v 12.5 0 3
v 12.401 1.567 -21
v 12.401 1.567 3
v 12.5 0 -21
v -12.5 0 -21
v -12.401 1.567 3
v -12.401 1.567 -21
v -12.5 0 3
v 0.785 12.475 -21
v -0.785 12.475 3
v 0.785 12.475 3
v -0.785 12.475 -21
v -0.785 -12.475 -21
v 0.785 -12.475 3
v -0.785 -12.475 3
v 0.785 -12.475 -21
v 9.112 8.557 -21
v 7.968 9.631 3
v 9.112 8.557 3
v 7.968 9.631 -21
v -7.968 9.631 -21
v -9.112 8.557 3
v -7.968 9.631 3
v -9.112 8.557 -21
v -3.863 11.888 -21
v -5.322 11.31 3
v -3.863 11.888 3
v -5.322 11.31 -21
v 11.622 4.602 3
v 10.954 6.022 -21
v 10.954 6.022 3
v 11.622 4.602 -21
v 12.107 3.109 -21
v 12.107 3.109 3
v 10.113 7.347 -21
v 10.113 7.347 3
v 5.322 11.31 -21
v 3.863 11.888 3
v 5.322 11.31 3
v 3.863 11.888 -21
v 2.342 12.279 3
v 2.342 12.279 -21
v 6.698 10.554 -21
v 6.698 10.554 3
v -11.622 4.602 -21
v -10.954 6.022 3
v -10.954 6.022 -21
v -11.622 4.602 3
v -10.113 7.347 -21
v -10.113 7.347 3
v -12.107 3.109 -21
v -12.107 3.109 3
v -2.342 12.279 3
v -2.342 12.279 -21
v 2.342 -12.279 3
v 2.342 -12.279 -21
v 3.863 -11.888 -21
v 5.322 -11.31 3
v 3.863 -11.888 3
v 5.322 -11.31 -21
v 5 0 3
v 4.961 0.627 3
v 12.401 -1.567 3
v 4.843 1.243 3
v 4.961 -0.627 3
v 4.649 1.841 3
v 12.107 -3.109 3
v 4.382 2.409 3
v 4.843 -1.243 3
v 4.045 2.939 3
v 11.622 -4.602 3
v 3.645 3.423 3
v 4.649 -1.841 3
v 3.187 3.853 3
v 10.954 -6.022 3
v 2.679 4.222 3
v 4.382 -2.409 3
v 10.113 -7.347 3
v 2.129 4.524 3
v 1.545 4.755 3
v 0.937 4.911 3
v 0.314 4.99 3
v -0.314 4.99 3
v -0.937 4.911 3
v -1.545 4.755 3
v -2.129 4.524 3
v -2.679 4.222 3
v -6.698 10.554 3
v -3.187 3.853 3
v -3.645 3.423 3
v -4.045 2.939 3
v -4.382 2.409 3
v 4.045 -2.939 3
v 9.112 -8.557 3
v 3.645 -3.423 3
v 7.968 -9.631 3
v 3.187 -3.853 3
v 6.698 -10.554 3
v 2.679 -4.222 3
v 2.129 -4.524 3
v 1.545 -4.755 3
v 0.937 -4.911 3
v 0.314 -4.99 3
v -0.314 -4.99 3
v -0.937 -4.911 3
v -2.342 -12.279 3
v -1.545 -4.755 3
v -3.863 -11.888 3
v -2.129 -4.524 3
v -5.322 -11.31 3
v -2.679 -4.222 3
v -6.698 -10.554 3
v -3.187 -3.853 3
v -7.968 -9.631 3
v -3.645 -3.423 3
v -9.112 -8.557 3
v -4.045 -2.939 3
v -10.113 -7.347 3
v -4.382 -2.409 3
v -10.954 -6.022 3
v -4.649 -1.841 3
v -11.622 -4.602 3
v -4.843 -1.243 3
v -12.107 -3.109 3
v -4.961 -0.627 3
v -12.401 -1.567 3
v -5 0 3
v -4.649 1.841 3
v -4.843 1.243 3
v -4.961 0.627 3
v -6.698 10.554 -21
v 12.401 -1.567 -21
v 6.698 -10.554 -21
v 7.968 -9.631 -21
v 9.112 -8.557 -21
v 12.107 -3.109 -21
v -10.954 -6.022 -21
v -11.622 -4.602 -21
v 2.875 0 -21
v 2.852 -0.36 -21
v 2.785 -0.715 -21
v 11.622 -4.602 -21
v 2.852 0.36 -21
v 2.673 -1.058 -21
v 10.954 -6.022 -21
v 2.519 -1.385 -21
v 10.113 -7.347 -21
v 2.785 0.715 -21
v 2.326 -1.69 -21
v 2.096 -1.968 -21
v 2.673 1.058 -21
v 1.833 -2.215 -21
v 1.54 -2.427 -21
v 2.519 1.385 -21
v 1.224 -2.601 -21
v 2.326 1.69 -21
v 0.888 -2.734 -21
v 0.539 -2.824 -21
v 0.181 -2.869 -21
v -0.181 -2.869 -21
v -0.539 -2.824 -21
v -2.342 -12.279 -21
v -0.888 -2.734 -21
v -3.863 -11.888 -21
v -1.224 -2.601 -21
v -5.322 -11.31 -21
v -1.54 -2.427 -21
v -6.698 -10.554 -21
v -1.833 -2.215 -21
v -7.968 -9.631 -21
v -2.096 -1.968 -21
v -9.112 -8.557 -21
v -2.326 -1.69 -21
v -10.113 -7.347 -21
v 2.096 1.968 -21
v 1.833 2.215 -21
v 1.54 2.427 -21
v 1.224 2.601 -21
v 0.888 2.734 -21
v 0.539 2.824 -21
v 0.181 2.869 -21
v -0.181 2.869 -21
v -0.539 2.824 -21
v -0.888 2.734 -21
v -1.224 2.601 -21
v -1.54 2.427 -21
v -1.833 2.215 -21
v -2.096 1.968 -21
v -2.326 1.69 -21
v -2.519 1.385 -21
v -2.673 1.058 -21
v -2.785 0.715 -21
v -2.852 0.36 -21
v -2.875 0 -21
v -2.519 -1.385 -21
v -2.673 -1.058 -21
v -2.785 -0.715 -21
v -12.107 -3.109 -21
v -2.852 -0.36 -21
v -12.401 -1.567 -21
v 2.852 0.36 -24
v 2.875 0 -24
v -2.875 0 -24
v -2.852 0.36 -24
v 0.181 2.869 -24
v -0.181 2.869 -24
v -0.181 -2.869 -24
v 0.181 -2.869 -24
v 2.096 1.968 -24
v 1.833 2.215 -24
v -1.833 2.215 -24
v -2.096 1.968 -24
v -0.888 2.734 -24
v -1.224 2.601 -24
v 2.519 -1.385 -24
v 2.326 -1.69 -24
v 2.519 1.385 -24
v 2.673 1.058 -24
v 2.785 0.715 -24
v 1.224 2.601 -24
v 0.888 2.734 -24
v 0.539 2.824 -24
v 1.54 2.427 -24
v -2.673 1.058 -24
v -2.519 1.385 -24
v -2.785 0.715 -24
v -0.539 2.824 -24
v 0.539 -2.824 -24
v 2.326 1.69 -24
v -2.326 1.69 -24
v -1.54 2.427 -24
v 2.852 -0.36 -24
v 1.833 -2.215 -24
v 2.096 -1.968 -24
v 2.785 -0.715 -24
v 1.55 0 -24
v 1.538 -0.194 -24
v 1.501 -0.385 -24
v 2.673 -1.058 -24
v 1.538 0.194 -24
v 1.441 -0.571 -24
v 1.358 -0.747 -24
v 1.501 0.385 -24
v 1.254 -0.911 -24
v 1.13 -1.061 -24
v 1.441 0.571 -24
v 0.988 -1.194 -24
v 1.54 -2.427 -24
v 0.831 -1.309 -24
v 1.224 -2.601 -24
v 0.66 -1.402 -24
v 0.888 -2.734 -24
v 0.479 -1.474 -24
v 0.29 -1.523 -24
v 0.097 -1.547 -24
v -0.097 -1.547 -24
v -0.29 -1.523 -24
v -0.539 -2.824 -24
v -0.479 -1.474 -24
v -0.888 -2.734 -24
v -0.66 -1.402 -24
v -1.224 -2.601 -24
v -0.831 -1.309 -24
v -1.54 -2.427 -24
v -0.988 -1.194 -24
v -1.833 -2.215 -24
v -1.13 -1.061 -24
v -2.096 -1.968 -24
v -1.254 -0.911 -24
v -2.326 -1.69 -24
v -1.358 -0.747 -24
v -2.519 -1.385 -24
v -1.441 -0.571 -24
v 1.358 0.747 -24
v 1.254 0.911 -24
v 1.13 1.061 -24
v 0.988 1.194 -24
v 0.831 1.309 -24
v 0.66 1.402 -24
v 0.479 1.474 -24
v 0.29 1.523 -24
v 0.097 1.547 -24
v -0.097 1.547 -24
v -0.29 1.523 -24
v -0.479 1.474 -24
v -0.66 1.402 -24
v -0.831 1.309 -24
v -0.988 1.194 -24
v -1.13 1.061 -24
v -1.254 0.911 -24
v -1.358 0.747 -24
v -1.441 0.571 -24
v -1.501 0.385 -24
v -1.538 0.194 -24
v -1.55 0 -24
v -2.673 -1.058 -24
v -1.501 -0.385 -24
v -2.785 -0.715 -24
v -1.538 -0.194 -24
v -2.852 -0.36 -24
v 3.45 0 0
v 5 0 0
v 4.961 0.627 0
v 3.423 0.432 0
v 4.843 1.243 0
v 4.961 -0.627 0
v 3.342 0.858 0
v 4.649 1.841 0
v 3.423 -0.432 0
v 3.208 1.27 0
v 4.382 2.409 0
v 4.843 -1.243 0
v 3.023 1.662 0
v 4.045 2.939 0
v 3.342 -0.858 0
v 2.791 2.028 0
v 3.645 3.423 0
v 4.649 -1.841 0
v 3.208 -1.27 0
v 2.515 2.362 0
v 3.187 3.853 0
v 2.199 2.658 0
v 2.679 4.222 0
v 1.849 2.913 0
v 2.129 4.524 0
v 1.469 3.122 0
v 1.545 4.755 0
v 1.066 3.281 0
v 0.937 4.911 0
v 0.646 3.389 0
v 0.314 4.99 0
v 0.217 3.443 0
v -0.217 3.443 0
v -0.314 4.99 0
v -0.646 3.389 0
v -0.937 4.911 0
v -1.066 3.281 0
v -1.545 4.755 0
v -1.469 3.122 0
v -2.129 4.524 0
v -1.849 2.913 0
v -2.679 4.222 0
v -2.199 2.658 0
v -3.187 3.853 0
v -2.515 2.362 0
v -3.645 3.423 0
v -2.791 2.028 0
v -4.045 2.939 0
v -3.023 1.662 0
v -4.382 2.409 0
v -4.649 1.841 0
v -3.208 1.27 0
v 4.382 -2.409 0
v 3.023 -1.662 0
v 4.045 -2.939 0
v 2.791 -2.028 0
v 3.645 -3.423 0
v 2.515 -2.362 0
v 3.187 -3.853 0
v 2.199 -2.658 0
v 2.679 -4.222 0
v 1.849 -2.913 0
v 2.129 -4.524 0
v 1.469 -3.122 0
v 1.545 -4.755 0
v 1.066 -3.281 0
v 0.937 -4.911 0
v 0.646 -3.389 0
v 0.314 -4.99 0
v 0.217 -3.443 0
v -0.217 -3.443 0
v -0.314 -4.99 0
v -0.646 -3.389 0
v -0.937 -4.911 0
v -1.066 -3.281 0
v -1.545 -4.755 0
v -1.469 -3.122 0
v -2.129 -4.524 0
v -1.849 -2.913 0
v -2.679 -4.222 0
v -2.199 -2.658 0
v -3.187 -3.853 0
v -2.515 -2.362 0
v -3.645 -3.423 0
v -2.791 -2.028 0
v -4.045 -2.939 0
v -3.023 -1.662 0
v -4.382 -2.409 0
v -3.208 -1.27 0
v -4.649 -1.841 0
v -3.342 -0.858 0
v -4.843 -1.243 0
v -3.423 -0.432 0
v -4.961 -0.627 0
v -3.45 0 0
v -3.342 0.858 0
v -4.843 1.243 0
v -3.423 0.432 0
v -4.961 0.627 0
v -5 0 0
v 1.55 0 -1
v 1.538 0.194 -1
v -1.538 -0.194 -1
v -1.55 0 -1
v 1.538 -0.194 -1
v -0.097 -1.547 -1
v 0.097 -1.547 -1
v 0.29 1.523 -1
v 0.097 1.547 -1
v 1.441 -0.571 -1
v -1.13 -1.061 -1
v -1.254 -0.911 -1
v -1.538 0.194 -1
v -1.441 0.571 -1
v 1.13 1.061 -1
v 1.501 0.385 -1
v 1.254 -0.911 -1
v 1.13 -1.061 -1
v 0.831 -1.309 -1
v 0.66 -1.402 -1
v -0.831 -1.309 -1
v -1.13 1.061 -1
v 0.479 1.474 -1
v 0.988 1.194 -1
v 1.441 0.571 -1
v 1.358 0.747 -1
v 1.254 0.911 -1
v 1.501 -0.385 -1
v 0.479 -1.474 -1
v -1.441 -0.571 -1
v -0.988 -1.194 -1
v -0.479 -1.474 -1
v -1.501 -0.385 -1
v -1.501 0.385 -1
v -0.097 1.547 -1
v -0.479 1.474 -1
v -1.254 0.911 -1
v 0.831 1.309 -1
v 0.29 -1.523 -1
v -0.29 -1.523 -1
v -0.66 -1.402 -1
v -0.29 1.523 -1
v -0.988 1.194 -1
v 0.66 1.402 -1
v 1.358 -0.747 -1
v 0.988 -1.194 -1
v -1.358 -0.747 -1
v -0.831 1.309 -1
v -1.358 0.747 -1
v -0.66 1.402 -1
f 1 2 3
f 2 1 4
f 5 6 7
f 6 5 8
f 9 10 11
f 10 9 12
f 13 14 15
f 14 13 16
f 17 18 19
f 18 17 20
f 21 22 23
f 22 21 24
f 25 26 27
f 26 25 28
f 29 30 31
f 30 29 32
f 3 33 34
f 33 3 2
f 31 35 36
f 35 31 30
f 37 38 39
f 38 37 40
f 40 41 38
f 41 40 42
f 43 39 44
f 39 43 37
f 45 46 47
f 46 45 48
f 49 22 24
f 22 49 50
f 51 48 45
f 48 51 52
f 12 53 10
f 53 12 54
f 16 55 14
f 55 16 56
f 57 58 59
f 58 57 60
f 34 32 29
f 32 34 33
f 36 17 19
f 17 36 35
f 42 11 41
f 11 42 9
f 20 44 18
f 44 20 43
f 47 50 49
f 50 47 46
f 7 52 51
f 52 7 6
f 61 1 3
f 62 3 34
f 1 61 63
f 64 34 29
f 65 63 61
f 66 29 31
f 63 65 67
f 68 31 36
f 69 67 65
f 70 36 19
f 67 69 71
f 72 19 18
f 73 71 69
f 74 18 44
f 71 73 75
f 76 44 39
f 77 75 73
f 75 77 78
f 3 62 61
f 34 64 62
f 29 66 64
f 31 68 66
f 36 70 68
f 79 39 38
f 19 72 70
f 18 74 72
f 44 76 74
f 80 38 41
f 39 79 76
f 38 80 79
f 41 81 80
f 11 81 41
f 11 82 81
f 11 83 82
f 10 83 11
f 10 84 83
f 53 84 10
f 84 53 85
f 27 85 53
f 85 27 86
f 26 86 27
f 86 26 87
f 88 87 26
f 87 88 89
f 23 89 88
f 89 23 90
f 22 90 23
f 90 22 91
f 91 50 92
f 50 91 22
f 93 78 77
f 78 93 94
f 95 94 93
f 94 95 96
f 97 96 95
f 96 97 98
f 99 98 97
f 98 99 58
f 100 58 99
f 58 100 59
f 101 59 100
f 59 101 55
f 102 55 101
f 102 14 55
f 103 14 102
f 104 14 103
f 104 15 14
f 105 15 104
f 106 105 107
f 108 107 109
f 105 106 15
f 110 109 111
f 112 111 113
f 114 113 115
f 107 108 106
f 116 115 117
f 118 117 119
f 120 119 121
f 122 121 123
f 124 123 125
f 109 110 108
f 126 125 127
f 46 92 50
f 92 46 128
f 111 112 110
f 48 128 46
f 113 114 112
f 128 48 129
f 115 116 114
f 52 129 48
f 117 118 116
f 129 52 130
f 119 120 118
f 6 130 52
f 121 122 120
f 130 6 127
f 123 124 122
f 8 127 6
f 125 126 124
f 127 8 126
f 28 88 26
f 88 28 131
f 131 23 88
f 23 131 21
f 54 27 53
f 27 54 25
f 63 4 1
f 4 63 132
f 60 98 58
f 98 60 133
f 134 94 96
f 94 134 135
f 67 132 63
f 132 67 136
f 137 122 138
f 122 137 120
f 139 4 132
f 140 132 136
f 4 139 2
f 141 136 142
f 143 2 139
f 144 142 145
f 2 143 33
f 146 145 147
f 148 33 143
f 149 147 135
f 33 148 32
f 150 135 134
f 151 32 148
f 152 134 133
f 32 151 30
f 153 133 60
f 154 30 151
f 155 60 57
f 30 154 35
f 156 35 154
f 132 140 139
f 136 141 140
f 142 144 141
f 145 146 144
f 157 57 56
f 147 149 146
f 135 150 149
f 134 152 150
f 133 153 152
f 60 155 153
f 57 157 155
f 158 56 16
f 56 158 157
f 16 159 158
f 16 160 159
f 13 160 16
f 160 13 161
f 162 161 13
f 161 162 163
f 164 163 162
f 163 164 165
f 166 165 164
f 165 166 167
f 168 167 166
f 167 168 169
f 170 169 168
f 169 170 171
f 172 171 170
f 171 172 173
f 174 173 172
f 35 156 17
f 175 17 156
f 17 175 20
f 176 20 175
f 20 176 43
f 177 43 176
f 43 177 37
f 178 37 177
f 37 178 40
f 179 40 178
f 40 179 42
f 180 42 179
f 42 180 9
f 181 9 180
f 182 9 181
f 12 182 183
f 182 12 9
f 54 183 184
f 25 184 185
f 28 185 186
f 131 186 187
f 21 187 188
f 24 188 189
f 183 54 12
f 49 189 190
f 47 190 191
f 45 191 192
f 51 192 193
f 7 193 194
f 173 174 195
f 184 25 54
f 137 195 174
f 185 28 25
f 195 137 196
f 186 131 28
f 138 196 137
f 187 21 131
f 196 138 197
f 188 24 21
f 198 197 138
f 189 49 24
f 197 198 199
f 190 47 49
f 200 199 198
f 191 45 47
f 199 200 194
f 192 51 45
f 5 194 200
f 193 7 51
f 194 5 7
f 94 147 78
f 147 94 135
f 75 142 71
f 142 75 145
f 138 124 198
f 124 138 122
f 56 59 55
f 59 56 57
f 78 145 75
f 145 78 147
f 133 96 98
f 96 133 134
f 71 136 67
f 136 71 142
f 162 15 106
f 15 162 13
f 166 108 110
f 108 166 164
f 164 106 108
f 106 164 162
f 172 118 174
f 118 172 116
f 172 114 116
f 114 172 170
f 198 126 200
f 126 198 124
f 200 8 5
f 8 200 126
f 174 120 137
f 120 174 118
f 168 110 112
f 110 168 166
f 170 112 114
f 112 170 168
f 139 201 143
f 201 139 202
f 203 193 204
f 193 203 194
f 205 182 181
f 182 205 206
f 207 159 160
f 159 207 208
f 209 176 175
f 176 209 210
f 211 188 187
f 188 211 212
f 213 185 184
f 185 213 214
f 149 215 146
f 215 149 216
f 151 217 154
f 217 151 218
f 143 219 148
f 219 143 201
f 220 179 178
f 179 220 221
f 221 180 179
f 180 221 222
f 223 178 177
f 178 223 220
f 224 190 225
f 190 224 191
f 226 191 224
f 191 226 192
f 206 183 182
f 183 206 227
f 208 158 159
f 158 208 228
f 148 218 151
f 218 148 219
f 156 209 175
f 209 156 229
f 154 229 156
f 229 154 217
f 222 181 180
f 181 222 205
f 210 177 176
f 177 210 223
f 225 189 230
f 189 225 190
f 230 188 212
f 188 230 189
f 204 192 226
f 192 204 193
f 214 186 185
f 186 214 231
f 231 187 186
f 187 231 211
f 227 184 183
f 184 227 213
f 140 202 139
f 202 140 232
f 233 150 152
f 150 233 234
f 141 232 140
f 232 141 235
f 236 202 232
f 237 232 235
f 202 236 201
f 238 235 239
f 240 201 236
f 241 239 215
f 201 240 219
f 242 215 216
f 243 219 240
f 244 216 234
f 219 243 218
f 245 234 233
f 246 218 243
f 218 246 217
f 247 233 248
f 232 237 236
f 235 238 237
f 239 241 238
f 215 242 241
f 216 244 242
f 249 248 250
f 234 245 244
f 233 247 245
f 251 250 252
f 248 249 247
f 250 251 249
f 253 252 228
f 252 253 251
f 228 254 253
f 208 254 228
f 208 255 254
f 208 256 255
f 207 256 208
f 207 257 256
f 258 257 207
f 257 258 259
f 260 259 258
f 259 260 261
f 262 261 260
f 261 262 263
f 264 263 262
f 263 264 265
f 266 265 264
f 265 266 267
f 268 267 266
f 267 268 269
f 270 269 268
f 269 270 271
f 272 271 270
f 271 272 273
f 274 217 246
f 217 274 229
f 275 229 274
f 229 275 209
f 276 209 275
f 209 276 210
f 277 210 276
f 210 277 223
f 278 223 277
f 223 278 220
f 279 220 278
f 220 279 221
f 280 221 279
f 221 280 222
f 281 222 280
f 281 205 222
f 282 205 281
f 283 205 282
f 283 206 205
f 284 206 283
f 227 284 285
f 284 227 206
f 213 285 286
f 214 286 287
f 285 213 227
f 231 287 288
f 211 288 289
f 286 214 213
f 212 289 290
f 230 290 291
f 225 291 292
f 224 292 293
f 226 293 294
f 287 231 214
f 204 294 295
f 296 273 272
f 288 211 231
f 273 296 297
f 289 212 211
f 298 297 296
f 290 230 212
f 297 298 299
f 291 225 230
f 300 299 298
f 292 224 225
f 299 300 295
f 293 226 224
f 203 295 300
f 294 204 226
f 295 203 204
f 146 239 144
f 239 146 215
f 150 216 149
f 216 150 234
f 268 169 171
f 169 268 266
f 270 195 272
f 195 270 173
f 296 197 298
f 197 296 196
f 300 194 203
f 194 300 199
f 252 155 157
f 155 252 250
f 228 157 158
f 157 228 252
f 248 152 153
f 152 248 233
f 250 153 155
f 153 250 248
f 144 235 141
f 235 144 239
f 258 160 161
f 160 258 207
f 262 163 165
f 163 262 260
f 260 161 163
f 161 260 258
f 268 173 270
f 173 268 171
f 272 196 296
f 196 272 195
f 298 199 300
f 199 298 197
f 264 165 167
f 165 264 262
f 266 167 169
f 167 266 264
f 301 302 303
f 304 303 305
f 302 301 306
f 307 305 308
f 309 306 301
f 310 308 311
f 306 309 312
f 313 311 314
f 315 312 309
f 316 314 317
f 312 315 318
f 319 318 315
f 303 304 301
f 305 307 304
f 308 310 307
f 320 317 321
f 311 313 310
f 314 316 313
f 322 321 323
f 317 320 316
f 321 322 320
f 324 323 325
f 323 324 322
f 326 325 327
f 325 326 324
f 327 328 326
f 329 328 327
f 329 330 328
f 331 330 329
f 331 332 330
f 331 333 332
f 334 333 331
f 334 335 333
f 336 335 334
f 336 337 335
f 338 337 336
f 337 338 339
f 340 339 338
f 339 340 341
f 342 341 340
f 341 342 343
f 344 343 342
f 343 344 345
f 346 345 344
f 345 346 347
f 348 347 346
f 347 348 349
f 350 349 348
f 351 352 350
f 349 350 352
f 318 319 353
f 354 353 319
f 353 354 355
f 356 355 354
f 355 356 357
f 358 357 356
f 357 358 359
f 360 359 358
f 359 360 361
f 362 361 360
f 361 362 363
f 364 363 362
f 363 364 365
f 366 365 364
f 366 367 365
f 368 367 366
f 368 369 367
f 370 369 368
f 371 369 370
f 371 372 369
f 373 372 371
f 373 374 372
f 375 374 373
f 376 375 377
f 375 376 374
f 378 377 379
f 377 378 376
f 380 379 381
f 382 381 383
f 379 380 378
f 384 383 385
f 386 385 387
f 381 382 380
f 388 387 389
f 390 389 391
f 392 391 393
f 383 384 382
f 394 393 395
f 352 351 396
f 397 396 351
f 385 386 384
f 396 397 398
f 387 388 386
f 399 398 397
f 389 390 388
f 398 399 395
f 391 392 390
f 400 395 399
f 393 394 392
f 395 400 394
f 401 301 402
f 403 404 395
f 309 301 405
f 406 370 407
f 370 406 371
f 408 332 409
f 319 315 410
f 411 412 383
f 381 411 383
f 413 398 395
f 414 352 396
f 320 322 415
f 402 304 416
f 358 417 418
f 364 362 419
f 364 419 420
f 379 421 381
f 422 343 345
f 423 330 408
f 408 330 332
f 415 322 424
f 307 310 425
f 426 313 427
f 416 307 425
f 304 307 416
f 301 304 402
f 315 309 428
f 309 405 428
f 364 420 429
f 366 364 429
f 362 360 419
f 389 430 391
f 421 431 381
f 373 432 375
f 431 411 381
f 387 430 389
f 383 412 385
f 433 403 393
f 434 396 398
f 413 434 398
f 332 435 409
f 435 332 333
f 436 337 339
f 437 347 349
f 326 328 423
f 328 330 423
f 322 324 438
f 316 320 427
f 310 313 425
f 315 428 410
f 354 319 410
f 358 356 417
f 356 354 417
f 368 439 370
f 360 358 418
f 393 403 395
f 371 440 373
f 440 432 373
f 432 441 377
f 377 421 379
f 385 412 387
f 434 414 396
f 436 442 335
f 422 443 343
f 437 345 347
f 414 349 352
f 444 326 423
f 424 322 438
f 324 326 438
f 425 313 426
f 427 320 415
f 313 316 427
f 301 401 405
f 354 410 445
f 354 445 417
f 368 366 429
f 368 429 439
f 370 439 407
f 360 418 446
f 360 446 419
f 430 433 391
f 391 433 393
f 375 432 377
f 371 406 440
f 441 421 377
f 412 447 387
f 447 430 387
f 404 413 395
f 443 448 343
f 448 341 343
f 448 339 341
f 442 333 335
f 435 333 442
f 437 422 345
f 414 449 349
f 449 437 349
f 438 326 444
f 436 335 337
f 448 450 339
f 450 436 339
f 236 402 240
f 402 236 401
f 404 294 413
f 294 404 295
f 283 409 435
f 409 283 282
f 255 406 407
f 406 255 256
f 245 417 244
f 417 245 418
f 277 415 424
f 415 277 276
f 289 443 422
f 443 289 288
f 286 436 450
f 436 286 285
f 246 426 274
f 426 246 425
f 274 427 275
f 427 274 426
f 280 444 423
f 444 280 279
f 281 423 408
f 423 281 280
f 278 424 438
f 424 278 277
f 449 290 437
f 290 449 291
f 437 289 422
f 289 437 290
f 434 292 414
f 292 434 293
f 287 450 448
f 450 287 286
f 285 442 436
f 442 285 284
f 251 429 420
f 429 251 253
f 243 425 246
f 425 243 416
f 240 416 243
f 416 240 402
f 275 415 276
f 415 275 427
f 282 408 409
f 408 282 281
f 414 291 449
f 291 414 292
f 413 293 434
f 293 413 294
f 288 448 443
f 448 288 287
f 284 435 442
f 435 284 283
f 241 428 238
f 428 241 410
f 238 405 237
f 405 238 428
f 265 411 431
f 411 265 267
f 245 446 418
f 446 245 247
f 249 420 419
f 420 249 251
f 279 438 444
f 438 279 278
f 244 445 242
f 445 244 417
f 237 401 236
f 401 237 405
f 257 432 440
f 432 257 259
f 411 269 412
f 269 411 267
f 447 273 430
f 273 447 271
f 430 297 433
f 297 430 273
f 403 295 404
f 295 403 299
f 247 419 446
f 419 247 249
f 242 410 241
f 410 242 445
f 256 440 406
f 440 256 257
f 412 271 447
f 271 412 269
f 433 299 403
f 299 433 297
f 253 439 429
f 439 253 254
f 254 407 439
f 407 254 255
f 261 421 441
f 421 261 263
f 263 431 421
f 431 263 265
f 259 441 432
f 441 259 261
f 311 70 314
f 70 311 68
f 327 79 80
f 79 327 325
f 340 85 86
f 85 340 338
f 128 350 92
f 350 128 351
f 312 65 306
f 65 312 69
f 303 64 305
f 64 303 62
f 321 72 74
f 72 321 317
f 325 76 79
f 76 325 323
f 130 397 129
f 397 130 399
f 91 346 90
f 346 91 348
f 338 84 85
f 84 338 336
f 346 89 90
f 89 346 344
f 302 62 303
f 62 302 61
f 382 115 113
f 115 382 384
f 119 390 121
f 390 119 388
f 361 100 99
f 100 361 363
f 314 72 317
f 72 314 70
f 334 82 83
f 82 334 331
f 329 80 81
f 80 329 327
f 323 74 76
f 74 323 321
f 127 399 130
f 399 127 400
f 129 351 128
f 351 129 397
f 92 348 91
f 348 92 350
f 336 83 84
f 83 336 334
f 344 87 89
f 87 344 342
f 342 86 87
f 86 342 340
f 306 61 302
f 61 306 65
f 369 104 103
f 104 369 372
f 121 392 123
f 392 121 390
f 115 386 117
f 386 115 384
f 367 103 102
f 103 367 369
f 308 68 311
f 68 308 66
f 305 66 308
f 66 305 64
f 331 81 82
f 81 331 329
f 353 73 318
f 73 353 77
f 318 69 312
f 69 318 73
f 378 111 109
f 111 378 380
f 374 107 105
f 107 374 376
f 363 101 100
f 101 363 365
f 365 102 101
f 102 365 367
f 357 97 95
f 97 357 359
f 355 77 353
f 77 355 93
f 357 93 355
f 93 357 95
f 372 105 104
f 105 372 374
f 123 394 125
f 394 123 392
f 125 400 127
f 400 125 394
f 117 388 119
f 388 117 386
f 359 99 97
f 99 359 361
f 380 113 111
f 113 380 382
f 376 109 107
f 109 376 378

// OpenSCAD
$fn = 50;

difference() {
	union() {
		translate(v = [0, 0, -21.0]) {
			cylinder(h = 24, r = 12.5);
		}
		#translate(v = [0, 0, -24.0]) {
			cylinder(h = 24, r = 2.875);
		}
	}
	union() {
		translate(v = [0, 0, 0]) {
			rotate(a = [0, 0, 0]) {
				difference() {
					union() {
						translate(v = [0, 0, -24.0]) {
							cylinder(h = 24, r = 1.25);
						}
						translate(v = [0, 0, -1.0]) {
							cylinder(h = 1.0, r1 = 1.55, r2 = 3.45);
						}
						translate(v = [0, 0, -24.0]) {
							cylinder(h = 24, r = 1.55);
						}
						translate(v = [0, 0, -24.0]) {
							cylinder(h = 24, r = 1.25);
						}
					}
					union();
				}
			}
		}
		#cylinder(h = 3, r = 5.0);
	}
}
